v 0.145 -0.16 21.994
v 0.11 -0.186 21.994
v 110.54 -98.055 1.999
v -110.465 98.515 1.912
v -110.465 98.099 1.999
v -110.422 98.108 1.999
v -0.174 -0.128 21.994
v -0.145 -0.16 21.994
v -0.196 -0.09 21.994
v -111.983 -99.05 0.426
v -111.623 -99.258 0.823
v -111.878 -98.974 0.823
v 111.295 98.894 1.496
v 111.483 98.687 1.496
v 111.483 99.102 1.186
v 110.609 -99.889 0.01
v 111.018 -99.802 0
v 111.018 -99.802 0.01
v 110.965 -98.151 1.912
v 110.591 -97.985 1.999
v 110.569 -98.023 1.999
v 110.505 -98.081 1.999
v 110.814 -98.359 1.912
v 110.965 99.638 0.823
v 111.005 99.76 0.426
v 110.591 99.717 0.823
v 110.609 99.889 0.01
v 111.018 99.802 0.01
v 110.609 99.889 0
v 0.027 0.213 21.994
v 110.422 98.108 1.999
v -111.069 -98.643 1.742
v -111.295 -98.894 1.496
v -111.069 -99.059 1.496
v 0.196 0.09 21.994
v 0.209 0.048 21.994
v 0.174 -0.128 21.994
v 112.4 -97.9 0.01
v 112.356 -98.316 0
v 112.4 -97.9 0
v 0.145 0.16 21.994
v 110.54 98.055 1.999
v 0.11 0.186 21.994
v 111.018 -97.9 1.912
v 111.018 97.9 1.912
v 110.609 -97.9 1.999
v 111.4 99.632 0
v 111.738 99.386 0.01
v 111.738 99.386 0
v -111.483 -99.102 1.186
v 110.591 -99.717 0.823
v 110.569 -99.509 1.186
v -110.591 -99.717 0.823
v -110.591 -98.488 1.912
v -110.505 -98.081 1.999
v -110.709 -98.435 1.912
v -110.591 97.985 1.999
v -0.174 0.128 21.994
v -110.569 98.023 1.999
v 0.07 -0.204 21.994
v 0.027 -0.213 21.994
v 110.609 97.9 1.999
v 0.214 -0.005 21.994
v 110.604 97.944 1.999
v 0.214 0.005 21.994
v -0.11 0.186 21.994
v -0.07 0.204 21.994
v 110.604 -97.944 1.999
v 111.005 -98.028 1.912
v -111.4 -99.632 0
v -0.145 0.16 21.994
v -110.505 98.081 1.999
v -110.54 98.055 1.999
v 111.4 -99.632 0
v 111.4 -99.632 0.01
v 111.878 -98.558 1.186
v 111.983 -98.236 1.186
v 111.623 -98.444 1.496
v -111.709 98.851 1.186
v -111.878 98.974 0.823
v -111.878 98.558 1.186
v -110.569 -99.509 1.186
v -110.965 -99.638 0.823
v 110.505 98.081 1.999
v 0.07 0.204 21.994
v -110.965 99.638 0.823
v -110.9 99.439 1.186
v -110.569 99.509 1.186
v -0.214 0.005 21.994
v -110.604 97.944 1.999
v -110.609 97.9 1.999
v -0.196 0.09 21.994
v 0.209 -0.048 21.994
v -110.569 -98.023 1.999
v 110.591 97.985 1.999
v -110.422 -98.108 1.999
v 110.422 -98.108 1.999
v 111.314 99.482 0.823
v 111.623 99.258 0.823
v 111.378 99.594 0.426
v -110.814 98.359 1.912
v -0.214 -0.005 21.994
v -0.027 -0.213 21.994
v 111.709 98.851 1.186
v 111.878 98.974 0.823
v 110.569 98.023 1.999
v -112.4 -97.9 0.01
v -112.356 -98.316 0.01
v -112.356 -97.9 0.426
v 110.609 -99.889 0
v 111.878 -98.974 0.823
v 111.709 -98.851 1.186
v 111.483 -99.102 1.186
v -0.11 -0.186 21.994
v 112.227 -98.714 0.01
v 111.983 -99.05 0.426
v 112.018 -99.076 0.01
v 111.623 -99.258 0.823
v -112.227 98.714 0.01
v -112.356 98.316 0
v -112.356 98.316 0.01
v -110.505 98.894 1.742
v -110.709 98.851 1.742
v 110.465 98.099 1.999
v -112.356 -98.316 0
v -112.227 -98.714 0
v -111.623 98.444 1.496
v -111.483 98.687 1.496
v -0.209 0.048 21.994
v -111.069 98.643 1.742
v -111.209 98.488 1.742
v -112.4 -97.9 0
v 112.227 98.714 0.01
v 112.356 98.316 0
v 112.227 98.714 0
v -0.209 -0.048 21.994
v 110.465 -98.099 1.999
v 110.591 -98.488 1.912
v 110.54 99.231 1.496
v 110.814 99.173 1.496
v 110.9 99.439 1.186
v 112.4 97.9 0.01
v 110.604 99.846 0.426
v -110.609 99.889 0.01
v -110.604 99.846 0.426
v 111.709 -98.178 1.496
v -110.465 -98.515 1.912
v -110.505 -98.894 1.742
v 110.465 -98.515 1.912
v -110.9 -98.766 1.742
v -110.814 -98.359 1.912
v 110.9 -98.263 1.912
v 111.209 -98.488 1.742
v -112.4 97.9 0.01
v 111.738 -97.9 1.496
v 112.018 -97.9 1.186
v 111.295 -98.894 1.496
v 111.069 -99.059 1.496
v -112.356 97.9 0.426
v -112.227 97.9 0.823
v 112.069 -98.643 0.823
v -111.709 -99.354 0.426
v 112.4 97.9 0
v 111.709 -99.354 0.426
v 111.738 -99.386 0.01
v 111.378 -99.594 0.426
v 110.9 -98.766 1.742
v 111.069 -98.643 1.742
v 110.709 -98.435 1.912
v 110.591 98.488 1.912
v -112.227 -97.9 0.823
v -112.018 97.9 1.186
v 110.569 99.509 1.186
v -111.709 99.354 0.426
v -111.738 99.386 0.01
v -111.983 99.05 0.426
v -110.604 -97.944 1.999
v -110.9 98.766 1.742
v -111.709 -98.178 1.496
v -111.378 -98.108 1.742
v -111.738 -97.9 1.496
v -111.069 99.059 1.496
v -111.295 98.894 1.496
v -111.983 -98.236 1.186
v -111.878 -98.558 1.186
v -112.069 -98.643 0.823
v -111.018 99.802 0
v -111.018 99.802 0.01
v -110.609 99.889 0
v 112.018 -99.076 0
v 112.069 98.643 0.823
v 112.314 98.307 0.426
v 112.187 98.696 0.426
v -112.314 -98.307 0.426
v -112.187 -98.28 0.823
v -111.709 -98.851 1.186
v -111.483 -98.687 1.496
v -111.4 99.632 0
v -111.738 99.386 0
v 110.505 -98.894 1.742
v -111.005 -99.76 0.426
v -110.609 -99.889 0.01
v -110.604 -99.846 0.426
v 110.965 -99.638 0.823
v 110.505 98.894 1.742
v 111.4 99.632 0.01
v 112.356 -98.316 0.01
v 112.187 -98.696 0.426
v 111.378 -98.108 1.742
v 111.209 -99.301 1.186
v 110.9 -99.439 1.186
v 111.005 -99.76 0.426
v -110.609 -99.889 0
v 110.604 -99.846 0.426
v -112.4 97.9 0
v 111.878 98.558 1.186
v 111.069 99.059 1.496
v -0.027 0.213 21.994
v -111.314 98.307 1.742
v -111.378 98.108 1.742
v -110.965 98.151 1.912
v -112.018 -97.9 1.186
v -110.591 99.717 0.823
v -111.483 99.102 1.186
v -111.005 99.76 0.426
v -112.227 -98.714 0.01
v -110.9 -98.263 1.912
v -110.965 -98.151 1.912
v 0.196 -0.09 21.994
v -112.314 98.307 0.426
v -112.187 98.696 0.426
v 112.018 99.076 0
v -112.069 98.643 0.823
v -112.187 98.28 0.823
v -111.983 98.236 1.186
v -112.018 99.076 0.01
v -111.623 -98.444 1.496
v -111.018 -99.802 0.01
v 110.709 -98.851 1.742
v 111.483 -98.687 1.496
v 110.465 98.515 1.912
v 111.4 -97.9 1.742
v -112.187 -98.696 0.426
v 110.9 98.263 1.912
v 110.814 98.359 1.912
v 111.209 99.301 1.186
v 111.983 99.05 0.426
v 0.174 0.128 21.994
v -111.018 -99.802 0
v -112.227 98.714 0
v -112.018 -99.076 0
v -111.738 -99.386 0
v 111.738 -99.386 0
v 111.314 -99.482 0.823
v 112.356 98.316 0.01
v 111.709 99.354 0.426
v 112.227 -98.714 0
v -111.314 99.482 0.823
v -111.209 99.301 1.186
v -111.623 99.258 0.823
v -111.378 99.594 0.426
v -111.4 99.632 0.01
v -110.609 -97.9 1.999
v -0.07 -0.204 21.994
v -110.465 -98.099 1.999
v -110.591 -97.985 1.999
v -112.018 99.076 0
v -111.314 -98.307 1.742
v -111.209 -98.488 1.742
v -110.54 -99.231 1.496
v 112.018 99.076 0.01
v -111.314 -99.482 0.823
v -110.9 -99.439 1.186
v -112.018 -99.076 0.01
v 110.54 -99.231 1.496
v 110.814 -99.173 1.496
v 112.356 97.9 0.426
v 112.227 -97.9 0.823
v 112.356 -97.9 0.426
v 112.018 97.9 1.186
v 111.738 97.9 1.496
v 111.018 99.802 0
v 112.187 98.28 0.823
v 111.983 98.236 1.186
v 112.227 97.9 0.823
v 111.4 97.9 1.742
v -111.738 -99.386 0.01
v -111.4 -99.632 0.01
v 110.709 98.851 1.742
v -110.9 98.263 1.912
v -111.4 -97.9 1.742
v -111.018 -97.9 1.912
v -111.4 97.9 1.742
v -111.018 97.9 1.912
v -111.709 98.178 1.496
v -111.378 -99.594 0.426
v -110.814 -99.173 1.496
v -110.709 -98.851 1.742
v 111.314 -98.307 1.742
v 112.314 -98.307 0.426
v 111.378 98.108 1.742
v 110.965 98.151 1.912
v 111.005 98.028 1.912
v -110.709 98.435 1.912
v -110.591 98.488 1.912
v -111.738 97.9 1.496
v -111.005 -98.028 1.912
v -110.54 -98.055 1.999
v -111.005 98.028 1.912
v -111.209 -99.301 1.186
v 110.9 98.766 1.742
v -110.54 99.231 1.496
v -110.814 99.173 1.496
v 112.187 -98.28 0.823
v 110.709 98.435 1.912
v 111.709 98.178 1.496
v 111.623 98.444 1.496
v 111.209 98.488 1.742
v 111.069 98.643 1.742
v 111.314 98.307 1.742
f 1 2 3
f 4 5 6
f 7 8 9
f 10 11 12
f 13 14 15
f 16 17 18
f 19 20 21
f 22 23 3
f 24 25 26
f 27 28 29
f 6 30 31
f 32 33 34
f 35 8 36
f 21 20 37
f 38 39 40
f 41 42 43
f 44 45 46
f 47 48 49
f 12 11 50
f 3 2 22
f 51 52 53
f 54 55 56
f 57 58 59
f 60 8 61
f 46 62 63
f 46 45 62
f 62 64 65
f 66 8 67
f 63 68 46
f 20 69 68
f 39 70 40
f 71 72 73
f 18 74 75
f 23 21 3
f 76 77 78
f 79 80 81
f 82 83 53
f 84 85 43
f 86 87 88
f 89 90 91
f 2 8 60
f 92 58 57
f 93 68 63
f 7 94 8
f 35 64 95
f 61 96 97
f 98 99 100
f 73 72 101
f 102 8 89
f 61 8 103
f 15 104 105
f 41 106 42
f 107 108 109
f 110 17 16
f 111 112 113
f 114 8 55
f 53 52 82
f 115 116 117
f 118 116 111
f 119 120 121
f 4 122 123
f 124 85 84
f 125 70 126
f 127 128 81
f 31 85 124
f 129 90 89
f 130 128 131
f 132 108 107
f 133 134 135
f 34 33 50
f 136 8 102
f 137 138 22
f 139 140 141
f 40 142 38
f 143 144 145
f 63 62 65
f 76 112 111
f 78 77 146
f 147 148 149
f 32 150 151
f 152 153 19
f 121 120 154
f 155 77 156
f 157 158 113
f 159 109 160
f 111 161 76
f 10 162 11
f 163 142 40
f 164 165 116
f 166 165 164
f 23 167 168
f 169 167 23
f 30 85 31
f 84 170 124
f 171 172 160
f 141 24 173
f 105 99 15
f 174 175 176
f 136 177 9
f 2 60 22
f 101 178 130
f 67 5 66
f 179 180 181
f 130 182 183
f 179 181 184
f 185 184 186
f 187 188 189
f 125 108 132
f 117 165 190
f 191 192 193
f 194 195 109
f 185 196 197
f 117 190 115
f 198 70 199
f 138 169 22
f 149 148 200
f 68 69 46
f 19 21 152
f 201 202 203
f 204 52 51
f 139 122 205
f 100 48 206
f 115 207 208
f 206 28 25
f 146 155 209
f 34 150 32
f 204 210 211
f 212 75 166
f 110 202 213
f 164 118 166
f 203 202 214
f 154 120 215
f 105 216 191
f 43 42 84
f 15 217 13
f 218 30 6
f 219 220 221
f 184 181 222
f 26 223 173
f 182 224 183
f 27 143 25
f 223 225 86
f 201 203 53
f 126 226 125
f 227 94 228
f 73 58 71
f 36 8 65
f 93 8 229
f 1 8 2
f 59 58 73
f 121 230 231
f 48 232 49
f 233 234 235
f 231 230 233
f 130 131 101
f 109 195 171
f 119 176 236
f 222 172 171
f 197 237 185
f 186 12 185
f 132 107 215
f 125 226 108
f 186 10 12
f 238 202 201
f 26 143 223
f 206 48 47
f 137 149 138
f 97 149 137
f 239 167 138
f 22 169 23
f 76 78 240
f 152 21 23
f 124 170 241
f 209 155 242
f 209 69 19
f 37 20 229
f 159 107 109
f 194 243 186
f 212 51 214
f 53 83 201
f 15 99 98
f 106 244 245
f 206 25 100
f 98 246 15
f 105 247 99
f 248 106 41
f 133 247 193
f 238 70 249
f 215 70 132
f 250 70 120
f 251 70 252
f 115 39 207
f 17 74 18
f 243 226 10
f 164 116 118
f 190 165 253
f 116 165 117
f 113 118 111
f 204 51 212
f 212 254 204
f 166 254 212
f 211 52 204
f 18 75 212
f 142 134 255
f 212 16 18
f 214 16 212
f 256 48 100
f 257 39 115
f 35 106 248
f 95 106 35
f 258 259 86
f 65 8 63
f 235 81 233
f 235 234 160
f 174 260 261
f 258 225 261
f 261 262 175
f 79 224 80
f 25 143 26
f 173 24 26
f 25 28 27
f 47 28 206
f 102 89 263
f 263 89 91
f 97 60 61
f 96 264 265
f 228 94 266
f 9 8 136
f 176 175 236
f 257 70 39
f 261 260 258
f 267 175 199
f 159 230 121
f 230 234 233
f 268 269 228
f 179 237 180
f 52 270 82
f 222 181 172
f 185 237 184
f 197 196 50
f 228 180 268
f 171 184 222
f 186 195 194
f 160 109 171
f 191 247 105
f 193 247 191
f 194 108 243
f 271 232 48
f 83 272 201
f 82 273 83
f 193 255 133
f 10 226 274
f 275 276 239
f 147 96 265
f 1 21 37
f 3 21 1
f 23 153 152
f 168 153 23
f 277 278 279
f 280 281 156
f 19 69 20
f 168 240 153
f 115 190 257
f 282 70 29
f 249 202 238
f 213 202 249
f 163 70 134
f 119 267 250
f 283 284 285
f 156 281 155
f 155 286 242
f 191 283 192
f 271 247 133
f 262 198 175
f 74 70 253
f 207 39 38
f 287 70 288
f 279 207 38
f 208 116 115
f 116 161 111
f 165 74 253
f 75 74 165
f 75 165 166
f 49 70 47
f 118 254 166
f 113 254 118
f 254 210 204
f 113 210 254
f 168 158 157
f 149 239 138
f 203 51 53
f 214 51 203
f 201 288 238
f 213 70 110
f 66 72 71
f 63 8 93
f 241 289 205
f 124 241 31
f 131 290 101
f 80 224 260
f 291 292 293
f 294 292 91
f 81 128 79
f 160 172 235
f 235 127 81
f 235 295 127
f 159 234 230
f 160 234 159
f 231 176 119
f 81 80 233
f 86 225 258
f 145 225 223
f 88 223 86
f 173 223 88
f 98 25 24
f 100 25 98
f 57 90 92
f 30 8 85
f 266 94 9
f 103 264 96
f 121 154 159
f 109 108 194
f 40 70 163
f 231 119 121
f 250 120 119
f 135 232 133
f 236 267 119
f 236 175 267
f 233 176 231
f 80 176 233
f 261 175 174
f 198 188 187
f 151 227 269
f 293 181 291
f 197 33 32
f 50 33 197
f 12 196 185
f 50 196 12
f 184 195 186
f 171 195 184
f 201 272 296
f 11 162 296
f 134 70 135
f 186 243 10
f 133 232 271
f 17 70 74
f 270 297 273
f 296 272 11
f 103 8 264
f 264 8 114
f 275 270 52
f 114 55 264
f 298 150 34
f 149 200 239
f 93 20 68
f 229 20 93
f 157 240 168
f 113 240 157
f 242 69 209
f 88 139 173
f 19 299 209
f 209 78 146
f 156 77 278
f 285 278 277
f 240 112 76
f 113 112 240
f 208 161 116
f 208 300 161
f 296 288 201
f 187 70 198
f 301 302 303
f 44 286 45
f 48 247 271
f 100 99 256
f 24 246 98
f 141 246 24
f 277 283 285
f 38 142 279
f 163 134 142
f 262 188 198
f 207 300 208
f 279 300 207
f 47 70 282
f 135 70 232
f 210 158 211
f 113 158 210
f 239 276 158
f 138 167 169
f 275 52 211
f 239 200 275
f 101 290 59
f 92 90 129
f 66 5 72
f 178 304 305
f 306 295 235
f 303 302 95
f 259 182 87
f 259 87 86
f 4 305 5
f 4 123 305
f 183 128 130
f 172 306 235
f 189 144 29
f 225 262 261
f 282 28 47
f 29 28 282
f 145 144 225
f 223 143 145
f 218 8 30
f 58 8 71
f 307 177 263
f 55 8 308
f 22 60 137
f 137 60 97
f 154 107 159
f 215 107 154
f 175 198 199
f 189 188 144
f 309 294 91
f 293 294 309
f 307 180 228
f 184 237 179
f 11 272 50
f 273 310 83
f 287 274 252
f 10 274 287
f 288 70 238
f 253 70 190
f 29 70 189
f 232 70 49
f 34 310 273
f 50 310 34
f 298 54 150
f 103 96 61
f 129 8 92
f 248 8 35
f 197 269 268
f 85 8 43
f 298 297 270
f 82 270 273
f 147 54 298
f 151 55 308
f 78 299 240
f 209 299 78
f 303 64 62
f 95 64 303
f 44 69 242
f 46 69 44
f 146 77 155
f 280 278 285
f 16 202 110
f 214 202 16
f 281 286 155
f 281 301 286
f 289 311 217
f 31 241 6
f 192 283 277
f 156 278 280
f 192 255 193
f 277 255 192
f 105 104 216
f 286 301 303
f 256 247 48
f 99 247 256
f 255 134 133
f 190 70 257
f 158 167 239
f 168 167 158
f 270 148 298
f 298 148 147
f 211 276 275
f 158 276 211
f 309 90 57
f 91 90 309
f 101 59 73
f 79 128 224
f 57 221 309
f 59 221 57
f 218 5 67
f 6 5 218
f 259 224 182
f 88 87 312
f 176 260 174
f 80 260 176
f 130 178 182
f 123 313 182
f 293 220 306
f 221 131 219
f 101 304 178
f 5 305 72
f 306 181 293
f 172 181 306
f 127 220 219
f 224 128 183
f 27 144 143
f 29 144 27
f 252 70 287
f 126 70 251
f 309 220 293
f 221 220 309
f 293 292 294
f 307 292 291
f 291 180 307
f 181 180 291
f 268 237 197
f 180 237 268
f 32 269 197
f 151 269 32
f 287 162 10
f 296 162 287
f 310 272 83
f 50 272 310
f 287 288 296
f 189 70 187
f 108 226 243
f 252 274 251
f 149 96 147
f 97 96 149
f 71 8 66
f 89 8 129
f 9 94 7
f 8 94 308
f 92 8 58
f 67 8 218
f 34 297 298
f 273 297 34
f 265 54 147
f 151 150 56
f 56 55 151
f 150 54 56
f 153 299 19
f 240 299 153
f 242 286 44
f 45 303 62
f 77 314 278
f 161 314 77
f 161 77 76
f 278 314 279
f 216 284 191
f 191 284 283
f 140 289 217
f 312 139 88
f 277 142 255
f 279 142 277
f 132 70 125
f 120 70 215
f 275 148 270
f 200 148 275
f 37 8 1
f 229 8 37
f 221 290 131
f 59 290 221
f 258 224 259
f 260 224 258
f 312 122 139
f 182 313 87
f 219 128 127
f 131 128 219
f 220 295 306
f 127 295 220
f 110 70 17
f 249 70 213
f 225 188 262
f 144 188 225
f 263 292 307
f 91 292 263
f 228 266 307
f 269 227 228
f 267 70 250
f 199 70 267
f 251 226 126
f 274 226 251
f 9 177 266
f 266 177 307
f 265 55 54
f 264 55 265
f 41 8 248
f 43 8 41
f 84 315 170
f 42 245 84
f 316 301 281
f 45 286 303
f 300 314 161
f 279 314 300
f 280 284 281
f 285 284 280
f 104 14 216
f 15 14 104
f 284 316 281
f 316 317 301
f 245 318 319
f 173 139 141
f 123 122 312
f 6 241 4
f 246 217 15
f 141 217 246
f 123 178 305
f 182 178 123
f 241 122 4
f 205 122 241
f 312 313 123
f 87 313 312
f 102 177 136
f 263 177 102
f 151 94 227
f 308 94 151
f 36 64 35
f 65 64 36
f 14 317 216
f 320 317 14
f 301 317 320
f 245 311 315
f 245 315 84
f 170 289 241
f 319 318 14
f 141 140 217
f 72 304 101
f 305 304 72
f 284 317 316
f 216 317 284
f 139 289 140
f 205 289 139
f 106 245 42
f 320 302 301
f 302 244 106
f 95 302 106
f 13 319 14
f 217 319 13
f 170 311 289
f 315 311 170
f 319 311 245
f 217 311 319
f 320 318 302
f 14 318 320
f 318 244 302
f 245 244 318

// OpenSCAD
// ============================================
// Wasser PB-60EA Booster Pump Protector — PYRAMID
// Print upside down (apex on build plate).
// No supports needed.
// Size: ~225 x 200 x 22 mm
// ============================================

include <pump_protector.scad>

protector_pyramid();
